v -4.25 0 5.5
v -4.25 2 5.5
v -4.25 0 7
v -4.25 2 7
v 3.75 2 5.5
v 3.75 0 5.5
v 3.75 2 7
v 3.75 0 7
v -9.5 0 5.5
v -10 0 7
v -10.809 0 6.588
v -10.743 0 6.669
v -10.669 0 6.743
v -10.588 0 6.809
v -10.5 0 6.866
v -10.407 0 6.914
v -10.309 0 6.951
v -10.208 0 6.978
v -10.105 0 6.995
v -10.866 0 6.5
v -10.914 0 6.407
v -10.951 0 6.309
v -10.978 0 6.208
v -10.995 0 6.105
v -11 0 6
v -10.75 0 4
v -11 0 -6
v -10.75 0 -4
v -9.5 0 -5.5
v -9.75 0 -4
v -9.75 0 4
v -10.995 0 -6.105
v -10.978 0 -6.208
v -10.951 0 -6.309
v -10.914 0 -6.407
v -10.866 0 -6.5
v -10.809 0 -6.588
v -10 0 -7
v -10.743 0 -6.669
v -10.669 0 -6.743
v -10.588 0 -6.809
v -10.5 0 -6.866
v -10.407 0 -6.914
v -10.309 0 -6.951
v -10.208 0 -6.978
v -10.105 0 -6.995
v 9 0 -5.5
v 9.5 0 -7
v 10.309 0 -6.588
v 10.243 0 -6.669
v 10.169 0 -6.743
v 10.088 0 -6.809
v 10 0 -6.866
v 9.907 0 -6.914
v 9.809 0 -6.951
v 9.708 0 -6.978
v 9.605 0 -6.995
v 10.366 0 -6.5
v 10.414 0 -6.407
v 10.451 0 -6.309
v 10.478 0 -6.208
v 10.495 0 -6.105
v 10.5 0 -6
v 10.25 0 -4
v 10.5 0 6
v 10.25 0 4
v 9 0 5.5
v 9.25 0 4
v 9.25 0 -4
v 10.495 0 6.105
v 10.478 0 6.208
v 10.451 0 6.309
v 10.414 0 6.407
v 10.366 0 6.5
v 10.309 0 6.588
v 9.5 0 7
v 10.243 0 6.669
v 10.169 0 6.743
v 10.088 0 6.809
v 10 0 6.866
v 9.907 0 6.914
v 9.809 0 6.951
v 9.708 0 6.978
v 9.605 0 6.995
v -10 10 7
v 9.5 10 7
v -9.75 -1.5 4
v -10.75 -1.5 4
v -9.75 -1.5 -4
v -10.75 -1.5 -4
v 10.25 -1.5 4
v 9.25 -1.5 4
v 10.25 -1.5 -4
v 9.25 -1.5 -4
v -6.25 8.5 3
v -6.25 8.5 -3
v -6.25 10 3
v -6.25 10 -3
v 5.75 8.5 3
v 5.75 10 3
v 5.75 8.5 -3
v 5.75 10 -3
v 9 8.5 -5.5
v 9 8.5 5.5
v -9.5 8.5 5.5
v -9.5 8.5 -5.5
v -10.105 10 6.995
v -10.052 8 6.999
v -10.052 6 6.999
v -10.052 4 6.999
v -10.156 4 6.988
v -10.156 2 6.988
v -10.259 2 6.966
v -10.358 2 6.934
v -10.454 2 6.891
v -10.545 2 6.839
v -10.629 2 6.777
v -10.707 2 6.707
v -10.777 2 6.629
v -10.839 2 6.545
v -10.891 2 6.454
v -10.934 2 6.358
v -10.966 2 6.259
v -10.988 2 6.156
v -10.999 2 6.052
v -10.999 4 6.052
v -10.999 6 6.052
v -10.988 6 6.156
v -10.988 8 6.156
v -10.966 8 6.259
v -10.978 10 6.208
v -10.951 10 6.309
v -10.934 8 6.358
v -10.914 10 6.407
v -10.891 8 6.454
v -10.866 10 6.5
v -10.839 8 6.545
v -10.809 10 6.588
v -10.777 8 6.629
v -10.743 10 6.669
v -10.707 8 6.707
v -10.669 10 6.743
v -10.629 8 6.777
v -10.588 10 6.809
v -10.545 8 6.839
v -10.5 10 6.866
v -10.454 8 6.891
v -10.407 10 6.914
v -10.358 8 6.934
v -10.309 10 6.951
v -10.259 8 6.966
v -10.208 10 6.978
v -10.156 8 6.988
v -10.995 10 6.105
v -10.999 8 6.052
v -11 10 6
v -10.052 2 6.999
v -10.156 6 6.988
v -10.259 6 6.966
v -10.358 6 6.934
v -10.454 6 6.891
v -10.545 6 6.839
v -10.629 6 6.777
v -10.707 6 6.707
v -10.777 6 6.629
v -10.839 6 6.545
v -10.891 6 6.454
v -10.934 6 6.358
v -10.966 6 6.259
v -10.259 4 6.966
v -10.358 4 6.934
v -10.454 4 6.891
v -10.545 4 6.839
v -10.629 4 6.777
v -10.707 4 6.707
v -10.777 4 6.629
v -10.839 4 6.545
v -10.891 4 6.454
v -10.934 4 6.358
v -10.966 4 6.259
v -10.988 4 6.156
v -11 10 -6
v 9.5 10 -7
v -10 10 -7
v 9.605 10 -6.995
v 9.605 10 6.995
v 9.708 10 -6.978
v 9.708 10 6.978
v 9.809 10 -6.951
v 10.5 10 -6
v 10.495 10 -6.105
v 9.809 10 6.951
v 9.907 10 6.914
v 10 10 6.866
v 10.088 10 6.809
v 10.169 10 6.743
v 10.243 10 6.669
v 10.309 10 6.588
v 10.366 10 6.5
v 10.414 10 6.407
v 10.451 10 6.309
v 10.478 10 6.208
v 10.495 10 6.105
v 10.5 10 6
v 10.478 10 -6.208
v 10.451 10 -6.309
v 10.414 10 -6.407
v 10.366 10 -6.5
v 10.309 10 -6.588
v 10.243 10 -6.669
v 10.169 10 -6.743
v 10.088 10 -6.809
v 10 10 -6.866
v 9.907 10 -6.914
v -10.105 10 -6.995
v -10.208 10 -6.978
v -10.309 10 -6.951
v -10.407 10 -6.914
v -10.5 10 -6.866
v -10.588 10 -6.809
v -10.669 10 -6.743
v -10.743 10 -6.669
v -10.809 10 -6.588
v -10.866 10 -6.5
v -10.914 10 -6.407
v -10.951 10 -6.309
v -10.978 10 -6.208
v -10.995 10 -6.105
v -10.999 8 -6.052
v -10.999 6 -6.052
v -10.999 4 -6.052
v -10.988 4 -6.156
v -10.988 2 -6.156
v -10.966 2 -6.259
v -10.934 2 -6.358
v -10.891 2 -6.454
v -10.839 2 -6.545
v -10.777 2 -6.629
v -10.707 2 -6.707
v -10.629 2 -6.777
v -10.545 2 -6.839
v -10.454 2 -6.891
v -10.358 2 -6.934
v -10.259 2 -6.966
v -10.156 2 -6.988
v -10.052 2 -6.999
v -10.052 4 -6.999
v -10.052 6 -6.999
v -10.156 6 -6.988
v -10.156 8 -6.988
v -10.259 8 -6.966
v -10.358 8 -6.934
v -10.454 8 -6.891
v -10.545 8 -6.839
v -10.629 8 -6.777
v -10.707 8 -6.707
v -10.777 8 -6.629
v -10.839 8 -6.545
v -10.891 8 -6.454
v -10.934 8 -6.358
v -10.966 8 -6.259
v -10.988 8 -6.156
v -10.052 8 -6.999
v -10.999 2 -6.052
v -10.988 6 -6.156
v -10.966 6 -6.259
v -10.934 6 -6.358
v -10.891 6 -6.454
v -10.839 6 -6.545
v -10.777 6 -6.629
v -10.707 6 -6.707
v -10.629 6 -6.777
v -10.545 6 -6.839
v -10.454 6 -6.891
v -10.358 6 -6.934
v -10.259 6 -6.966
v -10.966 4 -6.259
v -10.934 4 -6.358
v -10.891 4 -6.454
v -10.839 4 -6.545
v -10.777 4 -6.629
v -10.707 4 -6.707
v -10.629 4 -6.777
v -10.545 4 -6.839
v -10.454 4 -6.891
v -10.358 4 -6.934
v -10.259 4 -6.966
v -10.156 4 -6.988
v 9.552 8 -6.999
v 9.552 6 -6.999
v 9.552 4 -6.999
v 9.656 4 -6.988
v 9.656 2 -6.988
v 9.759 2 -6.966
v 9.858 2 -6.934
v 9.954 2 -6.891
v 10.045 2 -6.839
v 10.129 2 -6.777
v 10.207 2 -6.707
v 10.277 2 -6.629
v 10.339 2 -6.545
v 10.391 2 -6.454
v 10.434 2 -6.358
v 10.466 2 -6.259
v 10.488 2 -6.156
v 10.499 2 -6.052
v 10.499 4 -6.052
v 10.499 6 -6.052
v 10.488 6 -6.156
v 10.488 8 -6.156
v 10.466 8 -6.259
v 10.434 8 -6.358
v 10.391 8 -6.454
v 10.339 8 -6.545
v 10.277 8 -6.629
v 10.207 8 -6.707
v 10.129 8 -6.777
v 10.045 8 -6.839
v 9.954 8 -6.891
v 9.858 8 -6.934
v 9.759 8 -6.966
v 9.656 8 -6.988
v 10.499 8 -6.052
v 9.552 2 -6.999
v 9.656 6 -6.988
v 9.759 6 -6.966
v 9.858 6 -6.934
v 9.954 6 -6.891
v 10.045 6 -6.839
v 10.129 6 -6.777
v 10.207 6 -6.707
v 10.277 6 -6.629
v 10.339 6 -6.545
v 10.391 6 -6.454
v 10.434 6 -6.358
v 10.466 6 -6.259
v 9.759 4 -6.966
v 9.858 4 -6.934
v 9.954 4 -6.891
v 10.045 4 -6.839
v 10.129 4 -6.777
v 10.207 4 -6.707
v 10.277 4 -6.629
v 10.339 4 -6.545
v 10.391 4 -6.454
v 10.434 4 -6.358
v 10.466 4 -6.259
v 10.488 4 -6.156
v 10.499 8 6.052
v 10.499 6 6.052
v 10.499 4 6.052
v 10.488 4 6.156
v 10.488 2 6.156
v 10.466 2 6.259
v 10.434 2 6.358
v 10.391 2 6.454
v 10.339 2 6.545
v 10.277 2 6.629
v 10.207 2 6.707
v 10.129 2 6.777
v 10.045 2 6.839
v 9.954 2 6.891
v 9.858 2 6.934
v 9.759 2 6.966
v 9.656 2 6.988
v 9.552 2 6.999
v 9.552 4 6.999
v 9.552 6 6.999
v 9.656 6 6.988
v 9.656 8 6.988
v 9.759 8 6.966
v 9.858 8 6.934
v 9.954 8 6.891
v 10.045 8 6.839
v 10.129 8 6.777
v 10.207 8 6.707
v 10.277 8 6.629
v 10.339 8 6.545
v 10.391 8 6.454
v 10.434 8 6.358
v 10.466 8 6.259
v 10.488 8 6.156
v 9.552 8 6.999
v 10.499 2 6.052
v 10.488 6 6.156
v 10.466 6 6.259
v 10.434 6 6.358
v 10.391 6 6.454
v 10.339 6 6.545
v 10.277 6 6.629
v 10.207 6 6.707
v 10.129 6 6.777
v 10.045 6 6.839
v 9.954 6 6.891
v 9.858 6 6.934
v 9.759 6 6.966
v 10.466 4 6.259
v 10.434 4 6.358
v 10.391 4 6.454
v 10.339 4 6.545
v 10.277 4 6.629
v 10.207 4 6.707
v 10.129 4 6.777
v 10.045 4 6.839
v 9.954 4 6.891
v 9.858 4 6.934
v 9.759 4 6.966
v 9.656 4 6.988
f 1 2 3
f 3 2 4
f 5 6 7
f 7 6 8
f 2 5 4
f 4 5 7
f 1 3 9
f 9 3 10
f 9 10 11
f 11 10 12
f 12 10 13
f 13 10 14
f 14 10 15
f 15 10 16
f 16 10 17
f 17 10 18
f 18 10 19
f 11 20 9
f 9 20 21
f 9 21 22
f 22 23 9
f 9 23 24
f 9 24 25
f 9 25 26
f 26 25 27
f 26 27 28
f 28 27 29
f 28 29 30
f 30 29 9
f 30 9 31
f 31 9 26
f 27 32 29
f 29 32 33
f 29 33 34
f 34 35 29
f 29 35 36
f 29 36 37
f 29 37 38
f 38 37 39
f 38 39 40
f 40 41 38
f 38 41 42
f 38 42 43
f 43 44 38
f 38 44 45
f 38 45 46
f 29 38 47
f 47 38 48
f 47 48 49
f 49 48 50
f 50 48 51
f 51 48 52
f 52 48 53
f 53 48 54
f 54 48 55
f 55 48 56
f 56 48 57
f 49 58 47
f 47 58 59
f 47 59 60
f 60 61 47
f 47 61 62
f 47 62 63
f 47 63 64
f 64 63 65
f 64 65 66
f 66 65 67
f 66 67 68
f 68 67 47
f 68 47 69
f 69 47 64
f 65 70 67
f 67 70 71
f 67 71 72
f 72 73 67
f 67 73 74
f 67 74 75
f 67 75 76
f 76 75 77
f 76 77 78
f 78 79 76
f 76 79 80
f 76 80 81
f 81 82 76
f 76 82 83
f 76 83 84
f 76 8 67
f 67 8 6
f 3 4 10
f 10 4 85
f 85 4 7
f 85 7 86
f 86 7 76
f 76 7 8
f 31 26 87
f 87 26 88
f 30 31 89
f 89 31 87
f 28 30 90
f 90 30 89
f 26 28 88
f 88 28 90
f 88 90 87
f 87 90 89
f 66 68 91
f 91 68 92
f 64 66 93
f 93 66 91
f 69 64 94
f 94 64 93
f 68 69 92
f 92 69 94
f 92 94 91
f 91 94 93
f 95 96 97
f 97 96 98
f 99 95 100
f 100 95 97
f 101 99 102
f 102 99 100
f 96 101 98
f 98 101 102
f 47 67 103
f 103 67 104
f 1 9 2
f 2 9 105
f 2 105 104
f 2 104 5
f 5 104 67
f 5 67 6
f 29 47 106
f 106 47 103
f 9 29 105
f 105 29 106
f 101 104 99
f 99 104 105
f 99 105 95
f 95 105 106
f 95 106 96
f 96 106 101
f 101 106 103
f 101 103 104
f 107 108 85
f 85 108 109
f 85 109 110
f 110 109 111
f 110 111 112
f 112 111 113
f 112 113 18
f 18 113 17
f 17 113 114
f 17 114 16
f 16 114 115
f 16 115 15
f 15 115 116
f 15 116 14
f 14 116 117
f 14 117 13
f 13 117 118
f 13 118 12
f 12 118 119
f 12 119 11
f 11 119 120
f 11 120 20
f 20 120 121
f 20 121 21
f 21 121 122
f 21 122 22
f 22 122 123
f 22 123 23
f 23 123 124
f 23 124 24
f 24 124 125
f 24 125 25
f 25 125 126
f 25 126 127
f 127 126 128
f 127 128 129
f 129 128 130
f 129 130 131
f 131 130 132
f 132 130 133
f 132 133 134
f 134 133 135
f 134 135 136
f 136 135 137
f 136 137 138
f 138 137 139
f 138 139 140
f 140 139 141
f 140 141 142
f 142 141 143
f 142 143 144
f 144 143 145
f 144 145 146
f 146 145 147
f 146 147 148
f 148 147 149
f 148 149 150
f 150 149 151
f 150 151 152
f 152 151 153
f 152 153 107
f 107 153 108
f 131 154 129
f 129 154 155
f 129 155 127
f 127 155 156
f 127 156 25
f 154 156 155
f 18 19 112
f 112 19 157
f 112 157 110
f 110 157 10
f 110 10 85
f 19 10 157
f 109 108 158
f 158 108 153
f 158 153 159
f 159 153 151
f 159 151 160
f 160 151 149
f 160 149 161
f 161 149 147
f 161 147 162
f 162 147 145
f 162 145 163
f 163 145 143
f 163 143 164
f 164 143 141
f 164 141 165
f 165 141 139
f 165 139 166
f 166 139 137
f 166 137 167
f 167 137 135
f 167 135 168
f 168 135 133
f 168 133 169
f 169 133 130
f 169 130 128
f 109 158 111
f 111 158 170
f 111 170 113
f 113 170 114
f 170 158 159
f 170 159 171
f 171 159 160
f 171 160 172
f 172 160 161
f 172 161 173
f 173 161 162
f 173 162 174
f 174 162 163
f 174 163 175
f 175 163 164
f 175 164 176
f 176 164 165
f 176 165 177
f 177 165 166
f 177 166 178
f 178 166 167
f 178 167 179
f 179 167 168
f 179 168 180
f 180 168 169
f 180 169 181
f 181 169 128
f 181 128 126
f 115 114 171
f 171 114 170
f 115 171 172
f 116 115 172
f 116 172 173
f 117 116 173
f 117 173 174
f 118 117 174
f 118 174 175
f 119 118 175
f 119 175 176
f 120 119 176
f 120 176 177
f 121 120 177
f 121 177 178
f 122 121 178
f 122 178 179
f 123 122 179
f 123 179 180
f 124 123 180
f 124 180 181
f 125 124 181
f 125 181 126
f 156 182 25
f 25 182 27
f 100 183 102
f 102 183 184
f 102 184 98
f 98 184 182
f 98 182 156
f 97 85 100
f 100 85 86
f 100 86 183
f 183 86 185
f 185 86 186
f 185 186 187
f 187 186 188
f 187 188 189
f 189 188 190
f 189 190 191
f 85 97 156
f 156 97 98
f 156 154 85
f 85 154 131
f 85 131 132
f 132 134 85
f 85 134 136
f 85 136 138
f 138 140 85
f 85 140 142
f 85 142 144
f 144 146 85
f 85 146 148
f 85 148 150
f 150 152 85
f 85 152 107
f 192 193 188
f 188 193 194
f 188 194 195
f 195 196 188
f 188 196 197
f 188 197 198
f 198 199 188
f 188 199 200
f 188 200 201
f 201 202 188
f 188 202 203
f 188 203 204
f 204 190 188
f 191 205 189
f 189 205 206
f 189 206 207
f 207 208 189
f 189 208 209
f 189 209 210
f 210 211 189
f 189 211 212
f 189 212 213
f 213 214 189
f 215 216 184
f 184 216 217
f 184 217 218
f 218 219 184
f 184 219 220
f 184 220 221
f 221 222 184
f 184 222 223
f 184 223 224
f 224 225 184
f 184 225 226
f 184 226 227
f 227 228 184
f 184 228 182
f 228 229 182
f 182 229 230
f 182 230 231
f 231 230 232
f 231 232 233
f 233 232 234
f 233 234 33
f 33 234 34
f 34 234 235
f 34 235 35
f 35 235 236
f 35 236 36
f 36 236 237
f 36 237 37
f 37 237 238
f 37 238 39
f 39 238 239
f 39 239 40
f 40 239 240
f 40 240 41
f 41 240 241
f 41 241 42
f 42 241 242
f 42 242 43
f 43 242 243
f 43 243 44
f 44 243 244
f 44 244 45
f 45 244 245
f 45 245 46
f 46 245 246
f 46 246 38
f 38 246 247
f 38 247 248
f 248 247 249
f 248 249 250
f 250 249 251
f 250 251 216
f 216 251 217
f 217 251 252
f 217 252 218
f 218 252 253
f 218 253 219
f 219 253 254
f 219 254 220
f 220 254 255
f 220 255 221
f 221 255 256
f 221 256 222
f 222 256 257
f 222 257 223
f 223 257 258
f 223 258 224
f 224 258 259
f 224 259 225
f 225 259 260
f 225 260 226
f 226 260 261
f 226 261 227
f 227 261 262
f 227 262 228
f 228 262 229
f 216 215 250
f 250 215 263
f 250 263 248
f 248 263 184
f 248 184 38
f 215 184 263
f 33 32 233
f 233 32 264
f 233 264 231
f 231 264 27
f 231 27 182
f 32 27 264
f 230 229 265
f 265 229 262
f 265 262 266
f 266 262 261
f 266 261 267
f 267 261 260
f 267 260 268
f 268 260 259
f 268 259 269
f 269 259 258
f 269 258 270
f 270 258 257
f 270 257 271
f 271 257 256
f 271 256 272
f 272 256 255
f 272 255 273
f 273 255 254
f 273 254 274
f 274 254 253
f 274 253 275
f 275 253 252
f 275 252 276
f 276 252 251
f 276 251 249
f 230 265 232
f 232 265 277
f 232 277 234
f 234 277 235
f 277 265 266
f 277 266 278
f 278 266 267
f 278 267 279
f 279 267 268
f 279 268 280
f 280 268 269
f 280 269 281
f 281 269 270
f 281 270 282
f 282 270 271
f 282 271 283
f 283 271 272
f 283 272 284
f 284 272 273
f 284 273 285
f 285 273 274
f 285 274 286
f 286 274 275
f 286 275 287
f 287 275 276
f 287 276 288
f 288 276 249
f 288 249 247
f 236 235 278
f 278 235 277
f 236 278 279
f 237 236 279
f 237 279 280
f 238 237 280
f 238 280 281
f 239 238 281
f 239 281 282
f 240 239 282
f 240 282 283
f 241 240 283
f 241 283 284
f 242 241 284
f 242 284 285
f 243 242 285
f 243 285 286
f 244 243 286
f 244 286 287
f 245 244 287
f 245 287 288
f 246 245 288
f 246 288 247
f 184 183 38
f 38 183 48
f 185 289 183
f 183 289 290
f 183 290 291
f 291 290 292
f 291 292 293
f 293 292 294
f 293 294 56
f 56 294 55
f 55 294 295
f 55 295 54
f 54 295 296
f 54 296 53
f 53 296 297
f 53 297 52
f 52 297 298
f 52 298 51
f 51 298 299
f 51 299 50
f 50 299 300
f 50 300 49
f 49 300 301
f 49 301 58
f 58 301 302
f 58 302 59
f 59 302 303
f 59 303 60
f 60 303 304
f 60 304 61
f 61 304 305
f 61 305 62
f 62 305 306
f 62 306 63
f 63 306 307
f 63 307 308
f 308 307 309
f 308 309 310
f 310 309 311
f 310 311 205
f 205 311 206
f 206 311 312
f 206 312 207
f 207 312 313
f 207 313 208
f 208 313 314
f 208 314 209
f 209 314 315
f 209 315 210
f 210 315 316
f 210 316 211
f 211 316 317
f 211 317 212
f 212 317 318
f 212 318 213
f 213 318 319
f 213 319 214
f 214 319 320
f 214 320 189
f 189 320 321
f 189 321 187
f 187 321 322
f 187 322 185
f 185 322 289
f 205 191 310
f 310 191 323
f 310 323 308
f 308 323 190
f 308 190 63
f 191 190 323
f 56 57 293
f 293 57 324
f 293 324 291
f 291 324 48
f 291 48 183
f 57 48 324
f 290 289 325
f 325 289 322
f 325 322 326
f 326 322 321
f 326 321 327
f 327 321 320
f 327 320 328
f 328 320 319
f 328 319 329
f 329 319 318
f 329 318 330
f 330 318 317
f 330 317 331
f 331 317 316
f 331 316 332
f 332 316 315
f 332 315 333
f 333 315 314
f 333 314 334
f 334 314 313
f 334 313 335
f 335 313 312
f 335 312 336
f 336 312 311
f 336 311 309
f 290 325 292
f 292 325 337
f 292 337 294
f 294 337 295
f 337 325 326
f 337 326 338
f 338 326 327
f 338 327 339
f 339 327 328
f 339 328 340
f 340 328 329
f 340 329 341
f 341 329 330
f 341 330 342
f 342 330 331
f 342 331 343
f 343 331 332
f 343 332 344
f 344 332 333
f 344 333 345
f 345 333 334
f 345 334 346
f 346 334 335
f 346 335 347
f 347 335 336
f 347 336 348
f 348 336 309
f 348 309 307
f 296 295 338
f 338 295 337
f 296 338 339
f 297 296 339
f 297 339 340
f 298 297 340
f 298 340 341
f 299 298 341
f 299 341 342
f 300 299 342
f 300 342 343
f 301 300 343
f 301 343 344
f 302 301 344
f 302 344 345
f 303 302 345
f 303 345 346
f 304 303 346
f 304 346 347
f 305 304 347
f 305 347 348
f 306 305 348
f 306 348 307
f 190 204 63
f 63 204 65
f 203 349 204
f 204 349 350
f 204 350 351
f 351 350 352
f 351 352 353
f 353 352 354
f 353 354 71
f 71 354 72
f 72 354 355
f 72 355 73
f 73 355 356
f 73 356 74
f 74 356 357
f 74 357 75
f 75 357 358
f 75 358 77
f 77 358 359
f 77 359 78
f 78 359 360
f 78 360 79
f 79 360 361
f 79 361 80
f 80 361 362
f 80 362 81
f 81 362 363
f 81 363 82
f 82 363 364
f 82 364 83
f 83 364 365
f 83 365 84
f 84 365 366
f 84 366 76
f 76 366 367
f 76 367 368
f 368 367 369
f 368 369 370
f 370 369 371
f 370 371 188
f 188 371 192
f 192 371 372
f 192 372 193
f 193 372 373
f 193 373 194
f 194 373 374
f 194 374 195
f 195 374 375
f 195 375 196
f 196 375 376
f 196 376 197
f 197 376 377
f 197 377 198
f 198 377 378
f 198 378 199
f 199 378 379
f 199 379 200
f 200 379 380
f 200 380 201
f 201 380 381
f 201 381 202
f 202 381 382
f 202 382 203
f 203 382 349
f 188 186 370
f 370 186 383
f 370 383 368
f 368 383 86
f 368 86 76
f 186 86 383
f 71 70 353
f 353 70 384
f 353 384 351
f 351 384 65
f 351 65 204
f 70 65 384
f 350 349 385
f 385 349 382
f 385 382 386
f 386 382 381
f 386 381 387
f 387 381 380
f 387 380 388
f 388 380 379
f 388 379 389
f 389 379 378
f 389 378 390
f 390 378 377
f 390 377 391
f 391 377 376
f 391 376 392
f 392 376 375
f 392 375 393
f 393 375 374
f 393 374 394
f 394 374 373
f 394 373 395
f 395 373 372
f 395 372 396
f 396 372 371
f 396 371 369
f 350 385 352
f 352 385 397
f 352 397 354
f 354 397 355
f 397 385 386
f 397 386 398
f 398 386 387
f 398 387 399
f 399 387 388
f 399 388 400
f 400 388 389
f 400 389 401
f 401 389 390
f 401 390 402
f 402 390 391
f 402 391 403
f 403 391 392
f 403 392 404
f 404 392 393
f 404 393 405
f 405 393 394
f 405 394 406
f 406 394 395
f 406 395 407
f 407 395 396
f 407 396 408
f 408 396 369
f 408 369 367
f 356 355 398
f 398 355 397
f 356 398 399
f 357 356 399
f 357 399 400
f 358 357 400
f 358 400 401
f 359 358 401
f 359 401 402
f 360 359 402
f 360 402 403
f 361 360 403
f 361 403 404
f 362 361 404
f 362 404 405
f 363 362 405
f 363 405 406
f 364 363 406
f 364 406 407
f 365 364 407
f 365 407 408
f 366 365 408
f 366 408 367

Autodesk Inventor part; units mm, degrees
ref_plane "YZ Plane" through (0, 0, 0) normal (1, 0, 0) x (0, 1, 0)
ref_plane "XZ Plane" through (0, 0, 0) normal (0, 1, 0) x (-1, 0, 0)
ref_plane "XY Plane" through (0, 0, 0) normal (0, 0, 1) x (1, 0, 0)
sketch "Sketch1" plane through (0, 0, 0) normal (0, 1, 0) x (-1, 0, 0)
  line L0 (11, 7) -> (-10.5, 7)
  line L1 (-10.5, 7) -> (-10.5, -7)
  line L2 (-10.5, -7) -> (11, -7)
  line L3 (11, -7) -> (11, 7)
  point P0 (0, 0)
  dimension "d0" = 21.5
  dimension "d1" = 14
  dimension "d2" = 7
  dimension "d3" = 11
extrude "Extrusion1" add sketch "Sketch1" along normal blind 10
fillet "Fillet1" radius 1 4 edges at (10.5, 5, 7) (10.5, 5, -7) (-11, 5, -7) (-11, 5, 7)
shell "Shell1" thickness 1.5 removed faces 1 at (3, 0, 2.3333)
sketch "Sketch2" plane through (0, 10, 0) normal (0, 1, 0) x (1, 0, 0)
  line L0 (-6.25, 3) -> (5.75, 3)
  line L1 (5.75, 3) -> (5.75, -3)
  line L2 (5.75, -3) -> (-6.25, -3)
  line L3 (-6.25, -3) -> (-6.25, 3)
  line L4 (10.5, -6) -> (10.5, 6) projected
  point P0 (0, 0)
  dimension "d8" = 6
  dimension "d9" = 12
  dimension "d10" = 3
  dimension "d33" = 4.75
extrude "Extrusion2" cut sketch "Sketch2" against normal blind 10
sketch "Sketch4" plane through (0, 0, 0) normal (0, -1, 0) x (1, 0, 0)
  line L0 (10.25, 4) -> (9.25, 4)
  line L1 (9.25, 4) -> (9.25, -4)
  line L2 (9.25, -4) -> (10.25, -4)
  line L3 (10.25, -4) -> (10.25, 4)
  line L4 (10.5, 6) -> (10.5, -6) projected
  line L5 (-9.5, 5.5) -> (9, 5.5) projected
  line L6 (-9.75, 4) -> (-10.75, 4)
  line L7 (-10.75, 4) -> (-10.75, -4)
  line L8 (-10.75, -4) -> (-9.75, -4)
  line L9 (-9.75, -4) -> (-9.75, 4)
  line L10 (-11, -6) -> (-11, 6) projected
  line L11 (9, -5.5) -> (-9.5, -5.5) projected
  line L12 (-10, 7) -> (9.5, 7) projected
  line L13 (9.5, -7) -> (-10, -7) projected
  point P0 (0, 0)
  dimension "d20" = 1
  dimension "d23" = 1
  dimension "d24" = 8
  dimension "d25" = 0.25
  dimension "d29" = 3
  dimension "d30" = 3
  dimension "d31" = 8
  dimension "d32" = 0.25
extrude "Extrusion3" add sketch "Sketch4" along normal blind 1.5
sketch "Sketch5" plane through (-10, 0, 7) normal (0, 0, 1) x (1, 0, 0)
  line L0 (0, 0) -> (19.5, 0) projected
  line L1 (5.75, 2) -> (13.75, 2)
  line L2 (13.75, 2) -> (13.75, 0)
  line L3 (13.75, 0) -> (5.75, 0)
  line L4 (5.75, 0) -> (5.75, 2)
  line L5 (-1, 10) -> (-1, 0) projected
  point P0 (10, 0)
  dimension "d34" = 8
  dimension "d35" = 2
  dimension "d36" = 6.75
extrude "Extrusion4" cut sketch "Sketch5" against normal blind 10
properties part number "Black_Keyboard_Button_Base"
